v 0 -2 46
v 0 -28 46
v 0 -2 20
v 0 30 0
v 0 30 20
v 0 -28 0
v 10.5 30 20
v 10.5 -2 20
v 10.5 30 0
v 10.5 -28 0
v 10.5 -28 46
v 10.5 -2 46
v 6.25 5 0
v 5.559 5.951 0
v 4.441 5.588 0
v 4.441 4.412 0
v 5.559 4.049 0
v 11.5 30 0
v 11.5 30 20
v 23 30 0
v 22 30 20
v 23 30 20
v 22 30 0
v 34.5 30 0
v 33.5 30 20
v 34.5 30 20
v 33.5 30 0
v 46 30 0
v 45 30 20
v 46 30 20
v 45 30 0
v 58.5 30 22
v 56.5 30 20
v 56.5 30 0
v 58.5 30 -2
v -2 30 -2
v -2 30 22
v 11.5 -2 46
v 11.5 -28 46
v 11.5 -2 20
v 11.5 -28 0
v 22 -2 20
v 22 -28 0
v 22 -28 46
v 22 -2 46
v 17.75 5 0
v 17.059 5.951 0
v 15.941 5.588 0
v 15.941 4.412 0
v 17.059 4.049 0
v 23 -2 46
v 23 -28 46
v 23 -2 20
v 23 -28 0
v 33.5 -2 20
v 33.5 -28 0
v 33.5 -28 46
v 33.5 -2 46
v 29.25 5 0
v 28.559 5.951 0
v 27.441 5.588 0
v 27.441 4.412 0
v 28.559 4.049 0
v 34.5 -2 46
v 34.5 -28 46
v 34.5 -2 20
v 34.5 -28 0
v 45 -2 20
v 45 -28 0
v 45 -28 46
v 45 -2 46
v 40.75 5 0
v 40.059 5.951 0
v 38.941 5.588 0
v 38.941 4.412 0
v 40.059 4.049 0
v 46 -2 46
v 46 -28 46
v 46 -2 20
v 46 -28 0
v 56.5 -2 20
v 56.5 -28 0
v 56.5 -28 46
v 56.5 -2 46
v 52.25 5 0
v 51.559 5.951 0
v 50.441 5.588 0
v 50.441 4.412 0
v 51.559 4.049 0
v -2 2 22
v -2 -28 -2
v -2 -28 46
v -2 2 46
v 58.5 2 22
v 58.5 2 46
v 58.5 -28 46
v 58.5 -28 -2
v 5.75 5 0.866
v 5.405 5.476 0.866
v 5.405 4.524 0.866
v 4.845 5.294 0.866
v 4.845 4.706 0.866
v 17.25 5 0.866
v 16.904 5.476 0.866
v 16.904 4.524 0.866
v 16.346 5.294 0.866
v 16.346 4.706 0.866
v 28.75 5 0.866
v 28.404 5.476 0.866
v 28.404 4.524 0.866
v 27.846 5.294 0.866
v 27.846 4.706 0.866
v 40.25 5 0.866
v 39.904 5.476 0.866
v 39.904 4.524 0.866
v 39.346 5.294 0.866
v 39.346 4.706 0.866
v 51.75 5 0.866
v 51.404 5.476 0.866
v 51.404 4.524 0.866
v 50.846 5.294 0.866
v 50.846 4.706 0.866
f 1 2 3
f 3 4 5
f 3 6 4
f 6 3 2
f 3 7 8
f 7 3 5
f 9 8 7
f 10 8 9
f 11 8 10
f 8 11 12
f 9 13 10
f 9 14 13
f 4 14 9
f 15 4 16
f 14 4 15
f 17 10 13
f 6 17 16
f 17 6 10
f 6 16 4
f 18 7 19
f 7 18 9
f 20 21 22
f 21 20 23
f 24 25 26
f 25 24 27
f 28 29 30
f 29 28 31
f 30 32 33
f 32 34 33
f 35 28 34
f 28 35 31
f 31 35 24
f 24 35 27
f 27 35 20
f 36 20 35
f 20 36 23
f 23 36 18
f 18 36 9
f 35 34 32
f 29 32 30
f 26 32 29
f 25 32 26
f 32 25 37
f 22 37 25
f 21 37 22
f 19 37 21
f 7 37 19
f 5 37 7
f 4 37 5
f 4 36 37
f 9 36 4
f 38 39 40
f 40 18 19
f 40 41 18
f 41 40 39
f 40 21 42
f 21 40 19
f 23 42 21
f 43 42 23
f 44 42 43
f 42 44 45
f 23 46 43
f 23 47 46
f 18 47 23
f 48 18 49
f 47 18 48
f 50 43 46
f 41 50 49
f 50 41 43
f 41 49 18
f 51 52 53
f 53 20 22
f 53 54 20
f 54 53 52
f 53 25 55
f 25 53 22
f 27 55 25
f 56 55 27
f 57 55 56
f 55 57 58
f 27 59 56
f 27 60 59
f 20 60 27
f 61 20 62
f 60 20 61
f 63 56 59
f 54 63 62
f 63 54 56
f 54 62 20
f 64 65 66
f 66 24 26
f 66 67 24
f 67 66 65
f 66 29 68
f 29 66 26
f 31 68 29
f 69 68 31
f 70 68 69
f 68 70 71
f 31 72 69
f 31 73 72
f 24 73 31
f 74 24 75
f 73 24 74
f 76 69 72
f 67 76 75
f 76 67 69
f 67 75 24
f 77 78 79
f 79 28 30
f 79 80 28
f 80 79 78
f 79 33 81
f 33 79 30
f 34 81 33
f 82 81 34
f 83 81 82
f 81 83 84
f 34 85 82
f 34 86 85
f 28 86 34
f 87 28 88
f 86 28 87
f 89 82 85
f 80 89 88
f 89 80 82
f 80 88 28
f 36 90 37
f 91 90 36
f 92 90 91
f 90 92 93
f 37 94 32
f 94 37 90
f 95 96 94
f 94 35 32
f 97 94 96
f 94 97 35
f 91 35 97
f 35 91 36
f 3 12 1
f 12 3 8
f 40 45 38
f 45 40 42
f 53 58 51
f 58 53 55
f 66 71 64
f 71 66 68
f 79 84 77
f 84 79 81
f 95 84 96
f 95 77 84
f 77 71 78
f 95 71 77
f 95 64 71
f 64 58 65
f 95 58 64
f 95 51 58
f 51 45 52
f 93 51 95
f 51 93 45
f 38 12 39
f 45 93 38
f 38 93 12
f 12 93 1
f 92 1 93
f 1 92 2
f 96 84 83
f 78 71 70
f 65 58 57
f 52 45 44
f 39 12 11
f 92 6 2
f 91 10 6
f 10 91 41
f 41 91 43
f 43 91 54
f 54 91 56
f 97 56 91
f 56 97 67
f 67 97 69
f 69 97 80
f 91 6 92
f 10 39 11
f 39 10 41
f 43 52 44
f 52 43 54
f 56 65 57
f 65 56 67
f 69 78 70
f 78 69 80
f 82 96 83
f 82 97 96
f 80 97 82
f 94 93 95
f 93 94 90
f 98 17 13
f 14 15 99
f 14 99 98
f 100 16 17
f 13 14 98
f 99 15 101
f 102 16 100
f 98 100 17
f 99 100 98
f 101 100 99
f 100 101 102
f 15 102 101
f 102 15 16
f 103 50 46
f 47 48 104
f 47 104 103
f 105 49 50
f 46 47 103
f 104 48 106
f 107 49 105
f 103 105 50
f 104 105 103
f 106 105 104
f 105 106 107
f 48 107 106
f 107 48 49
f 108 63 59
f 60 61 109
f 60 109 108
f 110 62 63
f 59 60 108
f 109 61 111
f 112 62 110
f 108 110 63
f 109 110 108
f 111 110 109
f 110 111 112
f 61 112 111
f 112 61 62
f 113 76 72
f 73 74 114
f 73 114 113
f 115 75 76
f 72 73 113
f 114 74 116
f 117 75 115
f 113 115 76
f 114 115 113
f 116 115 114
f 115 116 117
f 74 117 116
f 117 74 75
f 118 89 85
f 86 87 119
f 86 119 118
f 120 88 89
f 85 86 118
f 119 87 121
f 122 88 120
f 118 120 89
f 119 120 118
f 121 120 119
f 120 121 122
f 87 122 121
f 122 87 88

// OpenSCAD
tube_width = 10.5;
tube_height = 20;
available_width = 56.5;
wall_width = 1;
inlet_length = 30;
shell_thickness = 2;
total_width = available_width + (2 * shell_thickness);
total_height = tube_height + (2 * shell_thickness);
feeder_step = tube_width + wall_width;

locator_diameter = 3;

locator = 5;

stack_height = 2 * total_height;
stack_length = 30;

stack_inlet_lap = 2;

module tube_blank() {
    cube([tube_width, inlet_length, tube_height]);
}

module coupler_shell() {
    cube([total_width, inlet_length, total_height]);
    }
   
 module stack_blank() {
     cube([tube_width, stack_length - stack_inlet_lap, stack_height]);
    }
    
module tube_stack_shell(){
    cube([total_width, stack_length, stack_height]);
    }

module tube_stack() {
    difference(){
        translate([- shell_thickness,-stack_length + stack_inlet_lap,- shell_thickness]){
            tube_stack_shell();
        }
        for (a =[1:5]) {
            translate([(feeder_step * a) - feeder_step, -stack_length,0]){
                stack_blank();
            }
        }
        for (a =[1:5]) {
            translate([(feeder_step * a) - feeder_step,-10,0]){
                tube_blank();
            }
        }

    }
}

module coupler(){
    difference(){
        translate([- shell_thickness,0,- shell_thickness]){
            coupler_shell();
        }
        for (a =[1:5]) {
            translate([(feeder_step * a) - feeder_step,0,0]){
                tube_blank();
            }
        }
    }
}

module locators(){
    for (a =[1:5]) {
        translate([(feeder_step * a) - wall_width -(tube_width / 2), locator, 0]) {
            sphere([locator_diameter]);
        }
    }
}


coupler();
tube_stack();
locators();
//difference(){
//    sleeve();
//    translate([-.7,0,1.9]){
//        negative_mold();
//    }
//}

echo(version=version());
